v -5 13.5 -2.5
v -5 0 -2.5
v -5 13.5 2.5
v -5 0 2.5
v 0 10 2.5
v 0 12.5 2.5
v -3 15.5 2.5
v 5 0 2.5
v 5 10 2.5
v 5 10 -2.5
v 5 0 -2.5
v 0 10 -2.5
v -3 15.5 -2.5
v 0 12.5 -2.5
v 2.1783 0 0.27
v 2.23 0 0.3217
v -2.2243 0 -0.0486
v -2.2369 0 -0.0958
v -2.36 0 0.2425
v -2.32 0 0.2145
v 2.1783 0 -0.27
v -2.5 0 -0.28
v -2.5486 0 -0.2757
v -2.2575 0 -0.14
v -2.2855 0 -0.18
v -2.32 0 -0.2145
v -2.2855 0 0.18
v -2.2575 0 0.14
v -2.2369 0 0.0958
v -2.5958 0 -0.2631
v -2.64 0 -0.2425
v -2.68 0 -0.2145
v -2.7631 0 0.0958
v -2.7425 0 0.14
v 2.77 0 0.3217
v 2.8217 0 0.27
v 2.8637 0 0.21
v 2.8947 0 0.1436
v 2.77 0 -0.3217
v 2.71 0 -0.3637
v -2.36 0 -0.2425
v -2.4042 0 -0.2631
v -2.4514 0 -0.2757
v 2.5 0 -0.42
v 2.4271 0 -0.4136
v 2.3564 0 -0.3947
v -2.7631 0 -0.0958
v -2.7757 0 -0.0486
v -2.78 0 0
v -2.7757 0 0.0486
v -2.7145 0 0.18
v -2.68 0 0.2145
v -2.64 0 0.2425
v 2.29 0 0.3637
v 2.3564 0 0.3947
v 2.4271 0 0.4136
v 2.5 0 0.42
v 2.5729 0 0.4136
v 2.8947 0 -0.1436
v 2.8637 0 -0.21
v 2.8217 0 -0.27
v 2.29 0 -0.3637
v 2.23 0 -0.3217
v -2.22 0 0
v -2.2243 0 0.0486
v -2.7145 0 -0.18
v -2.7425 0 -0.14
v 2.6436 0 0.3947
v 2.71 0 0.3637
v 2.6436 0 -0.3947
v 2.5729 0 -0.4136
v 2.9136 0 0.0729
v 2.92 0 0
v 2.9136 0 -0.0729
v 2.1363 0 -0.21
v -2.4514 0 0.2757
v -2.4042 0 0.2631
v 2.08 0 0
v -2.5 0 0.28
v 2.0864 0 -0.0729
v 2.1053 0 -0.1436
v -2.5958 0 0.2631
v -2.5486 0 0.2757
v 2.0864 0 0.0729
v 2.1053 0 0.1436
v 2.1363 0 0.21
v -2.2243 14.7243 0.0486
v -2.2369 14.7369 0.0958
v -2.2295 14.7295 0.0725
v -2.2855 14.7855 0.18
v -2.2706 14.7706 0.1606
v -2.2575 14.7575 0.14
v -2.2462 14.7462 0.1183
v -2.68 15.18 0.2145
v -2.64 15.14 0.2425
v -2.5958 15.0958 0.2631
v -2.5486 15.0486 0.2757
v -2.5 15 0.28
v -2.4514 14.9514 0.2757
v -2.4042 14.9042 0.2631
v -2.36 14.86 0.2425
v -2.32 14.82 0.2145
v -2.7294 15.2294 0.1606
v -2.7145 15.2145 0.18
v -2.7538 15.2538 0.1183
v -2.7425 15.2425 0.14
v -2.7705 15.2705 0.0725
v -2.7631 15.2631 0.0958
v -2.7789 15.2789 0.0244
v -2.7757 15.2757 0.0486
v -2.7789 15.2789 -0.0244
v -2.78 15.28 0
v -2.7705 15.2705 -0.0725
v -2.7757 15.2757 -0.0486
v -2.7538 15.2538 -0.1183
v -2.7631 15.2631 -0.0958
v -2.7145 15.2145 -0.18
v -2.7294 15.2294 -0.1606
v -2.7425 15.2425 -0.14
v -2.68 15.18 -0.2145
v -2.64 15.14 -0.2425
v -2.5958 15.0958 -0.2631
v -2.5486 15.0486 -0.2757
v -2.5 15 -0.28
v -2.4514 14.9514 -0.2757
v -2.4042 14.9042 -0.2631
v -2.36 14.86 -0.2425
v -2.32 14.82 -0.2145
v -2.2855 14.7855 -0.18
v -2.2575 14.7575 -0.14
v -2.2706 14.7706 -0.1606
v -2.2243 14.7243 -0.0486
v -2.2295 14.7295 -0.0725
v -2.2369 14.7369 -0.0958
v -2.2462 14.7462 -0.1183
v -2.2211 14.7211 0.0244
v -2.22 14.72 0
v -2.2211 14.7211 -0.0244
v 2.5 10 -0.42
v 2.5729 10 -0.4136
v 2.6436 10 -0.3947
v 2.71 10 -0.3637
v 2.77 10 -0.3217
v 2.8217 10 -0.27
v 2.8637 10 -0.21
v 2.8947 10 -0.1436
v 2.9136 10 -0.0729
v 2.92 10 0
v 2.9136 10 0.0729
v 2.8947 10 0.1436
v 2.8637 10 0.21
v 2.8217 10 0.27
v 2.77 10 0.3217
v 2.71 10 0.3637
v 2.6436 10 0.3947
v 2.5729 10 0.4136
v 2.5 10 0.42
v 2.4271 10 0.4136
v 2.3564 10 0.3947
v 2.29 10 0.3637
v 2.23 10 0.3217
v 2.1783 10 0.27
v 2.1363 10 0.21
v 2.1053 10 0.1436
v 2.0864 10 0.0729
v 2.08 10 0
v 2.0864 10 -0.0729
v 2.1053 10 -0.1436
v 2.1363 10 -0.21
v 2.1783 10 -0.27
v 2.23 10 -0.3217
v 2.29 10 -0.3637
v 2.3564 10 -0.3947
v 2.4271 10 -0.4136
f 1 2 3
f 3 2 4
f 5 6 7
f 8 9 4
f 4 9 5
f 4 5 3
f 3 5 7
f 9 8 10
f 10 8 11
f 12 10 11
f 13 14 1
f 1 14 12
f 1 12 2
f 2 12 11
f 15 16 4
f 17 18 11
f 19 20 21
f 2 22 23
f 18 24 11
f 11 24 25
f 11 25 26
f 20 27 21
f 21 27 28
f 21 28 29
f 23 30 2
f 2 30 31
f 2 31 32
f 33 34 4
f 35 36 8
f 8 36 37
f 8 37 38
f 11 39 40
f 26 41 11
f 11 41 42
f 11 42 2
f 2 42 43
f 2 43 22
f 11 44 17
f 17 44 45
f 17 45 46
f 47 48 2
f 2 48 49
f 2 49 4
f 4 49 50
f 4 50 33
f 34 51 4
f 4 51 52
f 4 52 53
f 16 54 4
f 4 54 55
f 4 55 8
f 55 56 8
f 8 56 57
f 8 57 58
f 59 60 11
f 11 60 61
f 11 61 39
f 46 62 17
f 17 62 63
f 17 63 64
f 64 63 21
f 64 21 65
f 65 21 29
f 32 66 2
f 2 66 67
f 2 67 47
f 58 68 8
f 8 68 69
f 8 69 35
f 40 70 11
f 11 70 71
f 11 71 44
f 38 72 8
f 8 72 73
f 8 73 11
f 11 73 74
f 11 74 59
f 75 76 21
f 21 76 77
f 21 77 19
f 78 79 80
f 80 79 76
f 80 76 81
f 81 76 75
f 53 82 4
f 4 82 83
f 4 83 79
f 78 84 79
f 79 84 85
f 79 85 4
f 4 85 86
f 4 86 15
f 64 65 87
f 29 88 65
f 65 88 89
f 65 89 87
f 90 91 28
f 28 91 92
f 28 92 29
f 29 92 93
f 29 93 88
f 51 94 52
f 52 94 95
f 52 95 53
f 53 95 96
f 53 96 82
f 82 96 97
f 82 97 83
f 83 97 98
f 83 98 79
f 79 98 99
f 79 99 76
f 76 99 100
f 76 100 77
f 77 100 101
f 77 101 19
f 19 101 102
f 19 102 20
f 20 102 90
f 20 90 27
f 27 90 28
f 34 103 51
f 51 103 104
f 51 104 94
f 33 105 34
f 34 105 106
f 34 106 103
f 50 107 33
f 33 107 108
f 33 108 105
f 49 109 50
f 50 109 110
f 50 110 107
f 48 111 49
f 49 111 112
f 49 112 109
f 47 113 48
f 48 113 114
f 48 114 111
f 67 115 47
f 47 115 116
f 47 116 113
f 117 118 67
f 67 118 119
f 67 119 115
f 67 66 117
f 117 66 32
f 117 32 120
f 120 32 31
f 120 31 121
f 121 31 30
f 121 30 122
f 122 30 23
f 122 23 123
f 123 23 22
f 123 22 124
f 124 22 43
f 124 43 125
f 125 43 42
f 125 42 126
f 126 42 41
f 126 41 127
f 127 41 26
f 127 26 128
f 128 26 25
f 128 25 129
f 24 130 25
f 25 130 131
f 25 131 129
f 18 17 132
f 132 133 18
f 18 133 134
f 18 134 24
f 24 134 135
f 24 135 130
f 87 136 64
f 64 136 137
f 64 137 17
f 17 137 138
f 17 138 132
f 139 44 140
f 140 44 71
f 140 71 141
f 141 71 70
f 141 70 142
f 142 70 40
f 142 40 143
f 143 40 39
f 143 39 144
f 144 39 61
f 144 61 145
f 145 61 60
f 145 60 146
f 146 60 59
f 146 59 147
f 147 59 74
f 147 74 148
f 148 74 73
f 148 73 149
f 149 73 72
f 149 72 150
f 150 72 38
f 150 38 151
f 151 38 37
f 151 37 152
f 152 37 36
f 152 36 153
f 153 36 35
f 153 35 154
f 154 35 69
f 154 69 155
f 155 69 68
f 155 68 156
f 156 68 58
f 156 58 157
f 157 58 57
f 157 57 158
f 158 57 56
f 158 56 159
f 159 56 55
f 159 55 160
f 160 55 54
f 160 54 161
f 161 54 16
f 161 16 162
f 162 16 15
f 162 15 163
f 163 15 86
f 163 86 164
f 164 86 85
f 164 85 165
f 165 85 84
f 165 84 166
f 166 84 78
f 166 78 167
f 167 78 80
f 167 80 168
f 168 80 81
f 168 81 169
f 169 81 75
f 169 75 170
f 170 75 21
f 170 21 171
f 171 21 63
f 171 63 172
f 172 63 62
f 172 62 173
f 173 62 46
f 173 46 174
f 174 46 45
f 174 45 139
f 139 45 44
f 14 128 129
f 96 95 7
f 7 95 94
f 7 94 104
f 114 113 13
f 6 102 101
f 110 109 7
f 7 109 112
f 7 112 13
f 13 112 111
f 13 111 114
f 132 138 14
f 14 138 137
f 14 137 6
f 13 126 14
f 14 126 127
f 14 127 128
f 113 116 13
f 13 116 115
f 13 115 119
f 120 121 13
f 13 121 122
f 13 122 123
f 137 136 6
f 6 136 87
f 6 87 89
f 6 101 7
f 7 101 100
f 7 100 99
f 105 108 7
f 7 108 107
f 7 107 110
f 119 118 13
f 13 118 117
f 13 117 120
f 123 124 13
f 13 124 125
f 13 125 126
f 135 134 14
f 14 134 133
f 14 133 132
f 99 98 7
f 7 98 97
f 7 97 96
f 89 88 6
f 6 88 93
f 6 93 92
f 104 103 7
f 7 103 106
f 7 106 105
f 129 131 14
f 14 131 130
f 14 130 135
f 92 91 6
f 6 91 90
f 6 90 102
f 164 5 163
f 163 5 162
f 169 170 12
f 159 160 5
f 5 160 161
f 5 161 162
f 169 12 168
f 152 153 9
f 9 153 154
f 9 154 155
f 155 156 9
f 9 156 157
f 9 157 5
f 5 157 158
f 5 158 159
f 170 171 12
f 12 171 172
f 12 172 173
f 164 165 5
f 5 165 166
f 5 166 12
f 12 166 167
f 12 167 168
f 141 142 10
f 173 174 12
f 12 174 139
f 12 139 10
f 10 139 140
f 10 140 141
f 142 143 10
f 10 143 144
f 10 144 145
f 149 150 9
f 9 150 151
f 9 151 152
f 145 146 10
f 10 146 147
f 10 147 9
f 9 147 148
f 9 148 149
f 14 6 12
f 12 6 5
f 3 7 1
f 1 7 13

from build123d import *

# Parameters (mm, degrees)
SKETCH1_W               = 10
SKETCH1_H               = 5
BOSS_EXTRUDE1_DEPTH     = 20
SKETCH2_R               = 0.42
SKETCH2_R_2             = 0.28
CUT_EXTRUDE1_DEPTH      = 21
CUT_EXTRUDE2_DEPTH      = 3.5
CUT_EXTRUDE2_DEPTH_BACK = 3.5
CHAMFER1_SIZE2          = 2.828427125
CHAMFER1_SIZE           = 4


with BuildPart() as part:
    # Sketch1 → Boss-Extrude1 (new body)
    with BuildSketch(Plane(origin=(0, 0, 0), x_dir=(1, 0, 0), z_dir=(0, 1, 0))):
        Rectangle(SKETCH1_W, SKETCH1_H)
    extrude(amount=BOSS_EXTRUDE1_DEPTH)

    # Sketch2 → Cut-Extrude1 (cut, through all)
    with BuildSketch(Plane.XZ):
        with Locations((2.5, 0)):
            Circle(SKETCH2_R)
        with Locations((-2.5, 0)):
            Circle(SKETCH2_R_2)
    extrude(amount=-CUT_EXTRUDE1_DEPTH, mode=Mode.SUBTRACT)

    # Sketch3 → Cut-Extrude2 (cut, two sides)
    with BuildSketch(Plane.XY) as cut_extrude2_sk:
        Polygon((-5, 17.5), (0, 12.5), (0, 10), (5, 10), (5, 20), (-5, 20), align=None)
    extrude(amount=CUT_EXTRUDE2_DEPTH, mode=Mode.SUBTRACT)
    extrude(cut_extrude2_sk.sketch, amount=-CUT_EXTRUDE2_DEPTH_BACK, mode=Mode.SUBTRACT)

    # Chamfer1
    chamfer1_edges = [part.edges().sort_by_distance(p)[0] for p in [
        (-5, 17.5, 0),
    ]]
    chamfer(chamfer1_edges, length=CHAMFER1_SIZE, length2=CHAMFER1_SIZE2)


solid = part.part
